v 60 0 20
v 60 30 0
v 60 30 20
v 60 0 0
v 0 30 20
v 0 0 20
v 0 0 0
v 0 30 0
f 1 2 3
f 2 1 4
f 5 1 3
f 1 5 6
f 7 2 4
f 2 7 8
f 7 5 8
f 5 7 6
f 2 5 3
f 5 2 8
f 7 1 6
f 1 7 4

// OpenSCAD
// Dimensions
base_length = 60;     // Increased for a longer base
base_width = 30;      // Increased for a wider base
base_height = 20;
slope_height = 20;

// Main block
module angled_block() {
    difference() {
        // Full rectangular block
        cube([base_length, base_width, base_height]);

        // Subtract sloped wedge
        translate([0, 0, 0])
            polyhedron(
                points=[
                    [0, 0, base_height],               // 0 - front top left
                    [base_length, 0, 0],               // 1 - front bottom right
                    [base_length, base_width, 0],      // 2 - back bottom right
                    [0, base_width, base_height],      // 3 - back top left
                    [0, 0, 0],                         // 4 - front bottom left
                    [0, base_width, 0],                // 5 - back bottom left
                    [base_length, base_width, base_height] // 6 - back top right (for deeper cut)
                ],
                faces=[
                    [0, 1, 2, 3],  // sloped top face
                    [0, 4, 5, 3],  // left face
                    [1, 2, 5, 4],  // bottom face
                    [0, 1, 4],     // front triangle
                    [3, 2, 6],     // back triangle (deeper cut)
                    [3, 6, 5]      // back face
                ]
            );
    }
}

// Render the block
angled_block();
